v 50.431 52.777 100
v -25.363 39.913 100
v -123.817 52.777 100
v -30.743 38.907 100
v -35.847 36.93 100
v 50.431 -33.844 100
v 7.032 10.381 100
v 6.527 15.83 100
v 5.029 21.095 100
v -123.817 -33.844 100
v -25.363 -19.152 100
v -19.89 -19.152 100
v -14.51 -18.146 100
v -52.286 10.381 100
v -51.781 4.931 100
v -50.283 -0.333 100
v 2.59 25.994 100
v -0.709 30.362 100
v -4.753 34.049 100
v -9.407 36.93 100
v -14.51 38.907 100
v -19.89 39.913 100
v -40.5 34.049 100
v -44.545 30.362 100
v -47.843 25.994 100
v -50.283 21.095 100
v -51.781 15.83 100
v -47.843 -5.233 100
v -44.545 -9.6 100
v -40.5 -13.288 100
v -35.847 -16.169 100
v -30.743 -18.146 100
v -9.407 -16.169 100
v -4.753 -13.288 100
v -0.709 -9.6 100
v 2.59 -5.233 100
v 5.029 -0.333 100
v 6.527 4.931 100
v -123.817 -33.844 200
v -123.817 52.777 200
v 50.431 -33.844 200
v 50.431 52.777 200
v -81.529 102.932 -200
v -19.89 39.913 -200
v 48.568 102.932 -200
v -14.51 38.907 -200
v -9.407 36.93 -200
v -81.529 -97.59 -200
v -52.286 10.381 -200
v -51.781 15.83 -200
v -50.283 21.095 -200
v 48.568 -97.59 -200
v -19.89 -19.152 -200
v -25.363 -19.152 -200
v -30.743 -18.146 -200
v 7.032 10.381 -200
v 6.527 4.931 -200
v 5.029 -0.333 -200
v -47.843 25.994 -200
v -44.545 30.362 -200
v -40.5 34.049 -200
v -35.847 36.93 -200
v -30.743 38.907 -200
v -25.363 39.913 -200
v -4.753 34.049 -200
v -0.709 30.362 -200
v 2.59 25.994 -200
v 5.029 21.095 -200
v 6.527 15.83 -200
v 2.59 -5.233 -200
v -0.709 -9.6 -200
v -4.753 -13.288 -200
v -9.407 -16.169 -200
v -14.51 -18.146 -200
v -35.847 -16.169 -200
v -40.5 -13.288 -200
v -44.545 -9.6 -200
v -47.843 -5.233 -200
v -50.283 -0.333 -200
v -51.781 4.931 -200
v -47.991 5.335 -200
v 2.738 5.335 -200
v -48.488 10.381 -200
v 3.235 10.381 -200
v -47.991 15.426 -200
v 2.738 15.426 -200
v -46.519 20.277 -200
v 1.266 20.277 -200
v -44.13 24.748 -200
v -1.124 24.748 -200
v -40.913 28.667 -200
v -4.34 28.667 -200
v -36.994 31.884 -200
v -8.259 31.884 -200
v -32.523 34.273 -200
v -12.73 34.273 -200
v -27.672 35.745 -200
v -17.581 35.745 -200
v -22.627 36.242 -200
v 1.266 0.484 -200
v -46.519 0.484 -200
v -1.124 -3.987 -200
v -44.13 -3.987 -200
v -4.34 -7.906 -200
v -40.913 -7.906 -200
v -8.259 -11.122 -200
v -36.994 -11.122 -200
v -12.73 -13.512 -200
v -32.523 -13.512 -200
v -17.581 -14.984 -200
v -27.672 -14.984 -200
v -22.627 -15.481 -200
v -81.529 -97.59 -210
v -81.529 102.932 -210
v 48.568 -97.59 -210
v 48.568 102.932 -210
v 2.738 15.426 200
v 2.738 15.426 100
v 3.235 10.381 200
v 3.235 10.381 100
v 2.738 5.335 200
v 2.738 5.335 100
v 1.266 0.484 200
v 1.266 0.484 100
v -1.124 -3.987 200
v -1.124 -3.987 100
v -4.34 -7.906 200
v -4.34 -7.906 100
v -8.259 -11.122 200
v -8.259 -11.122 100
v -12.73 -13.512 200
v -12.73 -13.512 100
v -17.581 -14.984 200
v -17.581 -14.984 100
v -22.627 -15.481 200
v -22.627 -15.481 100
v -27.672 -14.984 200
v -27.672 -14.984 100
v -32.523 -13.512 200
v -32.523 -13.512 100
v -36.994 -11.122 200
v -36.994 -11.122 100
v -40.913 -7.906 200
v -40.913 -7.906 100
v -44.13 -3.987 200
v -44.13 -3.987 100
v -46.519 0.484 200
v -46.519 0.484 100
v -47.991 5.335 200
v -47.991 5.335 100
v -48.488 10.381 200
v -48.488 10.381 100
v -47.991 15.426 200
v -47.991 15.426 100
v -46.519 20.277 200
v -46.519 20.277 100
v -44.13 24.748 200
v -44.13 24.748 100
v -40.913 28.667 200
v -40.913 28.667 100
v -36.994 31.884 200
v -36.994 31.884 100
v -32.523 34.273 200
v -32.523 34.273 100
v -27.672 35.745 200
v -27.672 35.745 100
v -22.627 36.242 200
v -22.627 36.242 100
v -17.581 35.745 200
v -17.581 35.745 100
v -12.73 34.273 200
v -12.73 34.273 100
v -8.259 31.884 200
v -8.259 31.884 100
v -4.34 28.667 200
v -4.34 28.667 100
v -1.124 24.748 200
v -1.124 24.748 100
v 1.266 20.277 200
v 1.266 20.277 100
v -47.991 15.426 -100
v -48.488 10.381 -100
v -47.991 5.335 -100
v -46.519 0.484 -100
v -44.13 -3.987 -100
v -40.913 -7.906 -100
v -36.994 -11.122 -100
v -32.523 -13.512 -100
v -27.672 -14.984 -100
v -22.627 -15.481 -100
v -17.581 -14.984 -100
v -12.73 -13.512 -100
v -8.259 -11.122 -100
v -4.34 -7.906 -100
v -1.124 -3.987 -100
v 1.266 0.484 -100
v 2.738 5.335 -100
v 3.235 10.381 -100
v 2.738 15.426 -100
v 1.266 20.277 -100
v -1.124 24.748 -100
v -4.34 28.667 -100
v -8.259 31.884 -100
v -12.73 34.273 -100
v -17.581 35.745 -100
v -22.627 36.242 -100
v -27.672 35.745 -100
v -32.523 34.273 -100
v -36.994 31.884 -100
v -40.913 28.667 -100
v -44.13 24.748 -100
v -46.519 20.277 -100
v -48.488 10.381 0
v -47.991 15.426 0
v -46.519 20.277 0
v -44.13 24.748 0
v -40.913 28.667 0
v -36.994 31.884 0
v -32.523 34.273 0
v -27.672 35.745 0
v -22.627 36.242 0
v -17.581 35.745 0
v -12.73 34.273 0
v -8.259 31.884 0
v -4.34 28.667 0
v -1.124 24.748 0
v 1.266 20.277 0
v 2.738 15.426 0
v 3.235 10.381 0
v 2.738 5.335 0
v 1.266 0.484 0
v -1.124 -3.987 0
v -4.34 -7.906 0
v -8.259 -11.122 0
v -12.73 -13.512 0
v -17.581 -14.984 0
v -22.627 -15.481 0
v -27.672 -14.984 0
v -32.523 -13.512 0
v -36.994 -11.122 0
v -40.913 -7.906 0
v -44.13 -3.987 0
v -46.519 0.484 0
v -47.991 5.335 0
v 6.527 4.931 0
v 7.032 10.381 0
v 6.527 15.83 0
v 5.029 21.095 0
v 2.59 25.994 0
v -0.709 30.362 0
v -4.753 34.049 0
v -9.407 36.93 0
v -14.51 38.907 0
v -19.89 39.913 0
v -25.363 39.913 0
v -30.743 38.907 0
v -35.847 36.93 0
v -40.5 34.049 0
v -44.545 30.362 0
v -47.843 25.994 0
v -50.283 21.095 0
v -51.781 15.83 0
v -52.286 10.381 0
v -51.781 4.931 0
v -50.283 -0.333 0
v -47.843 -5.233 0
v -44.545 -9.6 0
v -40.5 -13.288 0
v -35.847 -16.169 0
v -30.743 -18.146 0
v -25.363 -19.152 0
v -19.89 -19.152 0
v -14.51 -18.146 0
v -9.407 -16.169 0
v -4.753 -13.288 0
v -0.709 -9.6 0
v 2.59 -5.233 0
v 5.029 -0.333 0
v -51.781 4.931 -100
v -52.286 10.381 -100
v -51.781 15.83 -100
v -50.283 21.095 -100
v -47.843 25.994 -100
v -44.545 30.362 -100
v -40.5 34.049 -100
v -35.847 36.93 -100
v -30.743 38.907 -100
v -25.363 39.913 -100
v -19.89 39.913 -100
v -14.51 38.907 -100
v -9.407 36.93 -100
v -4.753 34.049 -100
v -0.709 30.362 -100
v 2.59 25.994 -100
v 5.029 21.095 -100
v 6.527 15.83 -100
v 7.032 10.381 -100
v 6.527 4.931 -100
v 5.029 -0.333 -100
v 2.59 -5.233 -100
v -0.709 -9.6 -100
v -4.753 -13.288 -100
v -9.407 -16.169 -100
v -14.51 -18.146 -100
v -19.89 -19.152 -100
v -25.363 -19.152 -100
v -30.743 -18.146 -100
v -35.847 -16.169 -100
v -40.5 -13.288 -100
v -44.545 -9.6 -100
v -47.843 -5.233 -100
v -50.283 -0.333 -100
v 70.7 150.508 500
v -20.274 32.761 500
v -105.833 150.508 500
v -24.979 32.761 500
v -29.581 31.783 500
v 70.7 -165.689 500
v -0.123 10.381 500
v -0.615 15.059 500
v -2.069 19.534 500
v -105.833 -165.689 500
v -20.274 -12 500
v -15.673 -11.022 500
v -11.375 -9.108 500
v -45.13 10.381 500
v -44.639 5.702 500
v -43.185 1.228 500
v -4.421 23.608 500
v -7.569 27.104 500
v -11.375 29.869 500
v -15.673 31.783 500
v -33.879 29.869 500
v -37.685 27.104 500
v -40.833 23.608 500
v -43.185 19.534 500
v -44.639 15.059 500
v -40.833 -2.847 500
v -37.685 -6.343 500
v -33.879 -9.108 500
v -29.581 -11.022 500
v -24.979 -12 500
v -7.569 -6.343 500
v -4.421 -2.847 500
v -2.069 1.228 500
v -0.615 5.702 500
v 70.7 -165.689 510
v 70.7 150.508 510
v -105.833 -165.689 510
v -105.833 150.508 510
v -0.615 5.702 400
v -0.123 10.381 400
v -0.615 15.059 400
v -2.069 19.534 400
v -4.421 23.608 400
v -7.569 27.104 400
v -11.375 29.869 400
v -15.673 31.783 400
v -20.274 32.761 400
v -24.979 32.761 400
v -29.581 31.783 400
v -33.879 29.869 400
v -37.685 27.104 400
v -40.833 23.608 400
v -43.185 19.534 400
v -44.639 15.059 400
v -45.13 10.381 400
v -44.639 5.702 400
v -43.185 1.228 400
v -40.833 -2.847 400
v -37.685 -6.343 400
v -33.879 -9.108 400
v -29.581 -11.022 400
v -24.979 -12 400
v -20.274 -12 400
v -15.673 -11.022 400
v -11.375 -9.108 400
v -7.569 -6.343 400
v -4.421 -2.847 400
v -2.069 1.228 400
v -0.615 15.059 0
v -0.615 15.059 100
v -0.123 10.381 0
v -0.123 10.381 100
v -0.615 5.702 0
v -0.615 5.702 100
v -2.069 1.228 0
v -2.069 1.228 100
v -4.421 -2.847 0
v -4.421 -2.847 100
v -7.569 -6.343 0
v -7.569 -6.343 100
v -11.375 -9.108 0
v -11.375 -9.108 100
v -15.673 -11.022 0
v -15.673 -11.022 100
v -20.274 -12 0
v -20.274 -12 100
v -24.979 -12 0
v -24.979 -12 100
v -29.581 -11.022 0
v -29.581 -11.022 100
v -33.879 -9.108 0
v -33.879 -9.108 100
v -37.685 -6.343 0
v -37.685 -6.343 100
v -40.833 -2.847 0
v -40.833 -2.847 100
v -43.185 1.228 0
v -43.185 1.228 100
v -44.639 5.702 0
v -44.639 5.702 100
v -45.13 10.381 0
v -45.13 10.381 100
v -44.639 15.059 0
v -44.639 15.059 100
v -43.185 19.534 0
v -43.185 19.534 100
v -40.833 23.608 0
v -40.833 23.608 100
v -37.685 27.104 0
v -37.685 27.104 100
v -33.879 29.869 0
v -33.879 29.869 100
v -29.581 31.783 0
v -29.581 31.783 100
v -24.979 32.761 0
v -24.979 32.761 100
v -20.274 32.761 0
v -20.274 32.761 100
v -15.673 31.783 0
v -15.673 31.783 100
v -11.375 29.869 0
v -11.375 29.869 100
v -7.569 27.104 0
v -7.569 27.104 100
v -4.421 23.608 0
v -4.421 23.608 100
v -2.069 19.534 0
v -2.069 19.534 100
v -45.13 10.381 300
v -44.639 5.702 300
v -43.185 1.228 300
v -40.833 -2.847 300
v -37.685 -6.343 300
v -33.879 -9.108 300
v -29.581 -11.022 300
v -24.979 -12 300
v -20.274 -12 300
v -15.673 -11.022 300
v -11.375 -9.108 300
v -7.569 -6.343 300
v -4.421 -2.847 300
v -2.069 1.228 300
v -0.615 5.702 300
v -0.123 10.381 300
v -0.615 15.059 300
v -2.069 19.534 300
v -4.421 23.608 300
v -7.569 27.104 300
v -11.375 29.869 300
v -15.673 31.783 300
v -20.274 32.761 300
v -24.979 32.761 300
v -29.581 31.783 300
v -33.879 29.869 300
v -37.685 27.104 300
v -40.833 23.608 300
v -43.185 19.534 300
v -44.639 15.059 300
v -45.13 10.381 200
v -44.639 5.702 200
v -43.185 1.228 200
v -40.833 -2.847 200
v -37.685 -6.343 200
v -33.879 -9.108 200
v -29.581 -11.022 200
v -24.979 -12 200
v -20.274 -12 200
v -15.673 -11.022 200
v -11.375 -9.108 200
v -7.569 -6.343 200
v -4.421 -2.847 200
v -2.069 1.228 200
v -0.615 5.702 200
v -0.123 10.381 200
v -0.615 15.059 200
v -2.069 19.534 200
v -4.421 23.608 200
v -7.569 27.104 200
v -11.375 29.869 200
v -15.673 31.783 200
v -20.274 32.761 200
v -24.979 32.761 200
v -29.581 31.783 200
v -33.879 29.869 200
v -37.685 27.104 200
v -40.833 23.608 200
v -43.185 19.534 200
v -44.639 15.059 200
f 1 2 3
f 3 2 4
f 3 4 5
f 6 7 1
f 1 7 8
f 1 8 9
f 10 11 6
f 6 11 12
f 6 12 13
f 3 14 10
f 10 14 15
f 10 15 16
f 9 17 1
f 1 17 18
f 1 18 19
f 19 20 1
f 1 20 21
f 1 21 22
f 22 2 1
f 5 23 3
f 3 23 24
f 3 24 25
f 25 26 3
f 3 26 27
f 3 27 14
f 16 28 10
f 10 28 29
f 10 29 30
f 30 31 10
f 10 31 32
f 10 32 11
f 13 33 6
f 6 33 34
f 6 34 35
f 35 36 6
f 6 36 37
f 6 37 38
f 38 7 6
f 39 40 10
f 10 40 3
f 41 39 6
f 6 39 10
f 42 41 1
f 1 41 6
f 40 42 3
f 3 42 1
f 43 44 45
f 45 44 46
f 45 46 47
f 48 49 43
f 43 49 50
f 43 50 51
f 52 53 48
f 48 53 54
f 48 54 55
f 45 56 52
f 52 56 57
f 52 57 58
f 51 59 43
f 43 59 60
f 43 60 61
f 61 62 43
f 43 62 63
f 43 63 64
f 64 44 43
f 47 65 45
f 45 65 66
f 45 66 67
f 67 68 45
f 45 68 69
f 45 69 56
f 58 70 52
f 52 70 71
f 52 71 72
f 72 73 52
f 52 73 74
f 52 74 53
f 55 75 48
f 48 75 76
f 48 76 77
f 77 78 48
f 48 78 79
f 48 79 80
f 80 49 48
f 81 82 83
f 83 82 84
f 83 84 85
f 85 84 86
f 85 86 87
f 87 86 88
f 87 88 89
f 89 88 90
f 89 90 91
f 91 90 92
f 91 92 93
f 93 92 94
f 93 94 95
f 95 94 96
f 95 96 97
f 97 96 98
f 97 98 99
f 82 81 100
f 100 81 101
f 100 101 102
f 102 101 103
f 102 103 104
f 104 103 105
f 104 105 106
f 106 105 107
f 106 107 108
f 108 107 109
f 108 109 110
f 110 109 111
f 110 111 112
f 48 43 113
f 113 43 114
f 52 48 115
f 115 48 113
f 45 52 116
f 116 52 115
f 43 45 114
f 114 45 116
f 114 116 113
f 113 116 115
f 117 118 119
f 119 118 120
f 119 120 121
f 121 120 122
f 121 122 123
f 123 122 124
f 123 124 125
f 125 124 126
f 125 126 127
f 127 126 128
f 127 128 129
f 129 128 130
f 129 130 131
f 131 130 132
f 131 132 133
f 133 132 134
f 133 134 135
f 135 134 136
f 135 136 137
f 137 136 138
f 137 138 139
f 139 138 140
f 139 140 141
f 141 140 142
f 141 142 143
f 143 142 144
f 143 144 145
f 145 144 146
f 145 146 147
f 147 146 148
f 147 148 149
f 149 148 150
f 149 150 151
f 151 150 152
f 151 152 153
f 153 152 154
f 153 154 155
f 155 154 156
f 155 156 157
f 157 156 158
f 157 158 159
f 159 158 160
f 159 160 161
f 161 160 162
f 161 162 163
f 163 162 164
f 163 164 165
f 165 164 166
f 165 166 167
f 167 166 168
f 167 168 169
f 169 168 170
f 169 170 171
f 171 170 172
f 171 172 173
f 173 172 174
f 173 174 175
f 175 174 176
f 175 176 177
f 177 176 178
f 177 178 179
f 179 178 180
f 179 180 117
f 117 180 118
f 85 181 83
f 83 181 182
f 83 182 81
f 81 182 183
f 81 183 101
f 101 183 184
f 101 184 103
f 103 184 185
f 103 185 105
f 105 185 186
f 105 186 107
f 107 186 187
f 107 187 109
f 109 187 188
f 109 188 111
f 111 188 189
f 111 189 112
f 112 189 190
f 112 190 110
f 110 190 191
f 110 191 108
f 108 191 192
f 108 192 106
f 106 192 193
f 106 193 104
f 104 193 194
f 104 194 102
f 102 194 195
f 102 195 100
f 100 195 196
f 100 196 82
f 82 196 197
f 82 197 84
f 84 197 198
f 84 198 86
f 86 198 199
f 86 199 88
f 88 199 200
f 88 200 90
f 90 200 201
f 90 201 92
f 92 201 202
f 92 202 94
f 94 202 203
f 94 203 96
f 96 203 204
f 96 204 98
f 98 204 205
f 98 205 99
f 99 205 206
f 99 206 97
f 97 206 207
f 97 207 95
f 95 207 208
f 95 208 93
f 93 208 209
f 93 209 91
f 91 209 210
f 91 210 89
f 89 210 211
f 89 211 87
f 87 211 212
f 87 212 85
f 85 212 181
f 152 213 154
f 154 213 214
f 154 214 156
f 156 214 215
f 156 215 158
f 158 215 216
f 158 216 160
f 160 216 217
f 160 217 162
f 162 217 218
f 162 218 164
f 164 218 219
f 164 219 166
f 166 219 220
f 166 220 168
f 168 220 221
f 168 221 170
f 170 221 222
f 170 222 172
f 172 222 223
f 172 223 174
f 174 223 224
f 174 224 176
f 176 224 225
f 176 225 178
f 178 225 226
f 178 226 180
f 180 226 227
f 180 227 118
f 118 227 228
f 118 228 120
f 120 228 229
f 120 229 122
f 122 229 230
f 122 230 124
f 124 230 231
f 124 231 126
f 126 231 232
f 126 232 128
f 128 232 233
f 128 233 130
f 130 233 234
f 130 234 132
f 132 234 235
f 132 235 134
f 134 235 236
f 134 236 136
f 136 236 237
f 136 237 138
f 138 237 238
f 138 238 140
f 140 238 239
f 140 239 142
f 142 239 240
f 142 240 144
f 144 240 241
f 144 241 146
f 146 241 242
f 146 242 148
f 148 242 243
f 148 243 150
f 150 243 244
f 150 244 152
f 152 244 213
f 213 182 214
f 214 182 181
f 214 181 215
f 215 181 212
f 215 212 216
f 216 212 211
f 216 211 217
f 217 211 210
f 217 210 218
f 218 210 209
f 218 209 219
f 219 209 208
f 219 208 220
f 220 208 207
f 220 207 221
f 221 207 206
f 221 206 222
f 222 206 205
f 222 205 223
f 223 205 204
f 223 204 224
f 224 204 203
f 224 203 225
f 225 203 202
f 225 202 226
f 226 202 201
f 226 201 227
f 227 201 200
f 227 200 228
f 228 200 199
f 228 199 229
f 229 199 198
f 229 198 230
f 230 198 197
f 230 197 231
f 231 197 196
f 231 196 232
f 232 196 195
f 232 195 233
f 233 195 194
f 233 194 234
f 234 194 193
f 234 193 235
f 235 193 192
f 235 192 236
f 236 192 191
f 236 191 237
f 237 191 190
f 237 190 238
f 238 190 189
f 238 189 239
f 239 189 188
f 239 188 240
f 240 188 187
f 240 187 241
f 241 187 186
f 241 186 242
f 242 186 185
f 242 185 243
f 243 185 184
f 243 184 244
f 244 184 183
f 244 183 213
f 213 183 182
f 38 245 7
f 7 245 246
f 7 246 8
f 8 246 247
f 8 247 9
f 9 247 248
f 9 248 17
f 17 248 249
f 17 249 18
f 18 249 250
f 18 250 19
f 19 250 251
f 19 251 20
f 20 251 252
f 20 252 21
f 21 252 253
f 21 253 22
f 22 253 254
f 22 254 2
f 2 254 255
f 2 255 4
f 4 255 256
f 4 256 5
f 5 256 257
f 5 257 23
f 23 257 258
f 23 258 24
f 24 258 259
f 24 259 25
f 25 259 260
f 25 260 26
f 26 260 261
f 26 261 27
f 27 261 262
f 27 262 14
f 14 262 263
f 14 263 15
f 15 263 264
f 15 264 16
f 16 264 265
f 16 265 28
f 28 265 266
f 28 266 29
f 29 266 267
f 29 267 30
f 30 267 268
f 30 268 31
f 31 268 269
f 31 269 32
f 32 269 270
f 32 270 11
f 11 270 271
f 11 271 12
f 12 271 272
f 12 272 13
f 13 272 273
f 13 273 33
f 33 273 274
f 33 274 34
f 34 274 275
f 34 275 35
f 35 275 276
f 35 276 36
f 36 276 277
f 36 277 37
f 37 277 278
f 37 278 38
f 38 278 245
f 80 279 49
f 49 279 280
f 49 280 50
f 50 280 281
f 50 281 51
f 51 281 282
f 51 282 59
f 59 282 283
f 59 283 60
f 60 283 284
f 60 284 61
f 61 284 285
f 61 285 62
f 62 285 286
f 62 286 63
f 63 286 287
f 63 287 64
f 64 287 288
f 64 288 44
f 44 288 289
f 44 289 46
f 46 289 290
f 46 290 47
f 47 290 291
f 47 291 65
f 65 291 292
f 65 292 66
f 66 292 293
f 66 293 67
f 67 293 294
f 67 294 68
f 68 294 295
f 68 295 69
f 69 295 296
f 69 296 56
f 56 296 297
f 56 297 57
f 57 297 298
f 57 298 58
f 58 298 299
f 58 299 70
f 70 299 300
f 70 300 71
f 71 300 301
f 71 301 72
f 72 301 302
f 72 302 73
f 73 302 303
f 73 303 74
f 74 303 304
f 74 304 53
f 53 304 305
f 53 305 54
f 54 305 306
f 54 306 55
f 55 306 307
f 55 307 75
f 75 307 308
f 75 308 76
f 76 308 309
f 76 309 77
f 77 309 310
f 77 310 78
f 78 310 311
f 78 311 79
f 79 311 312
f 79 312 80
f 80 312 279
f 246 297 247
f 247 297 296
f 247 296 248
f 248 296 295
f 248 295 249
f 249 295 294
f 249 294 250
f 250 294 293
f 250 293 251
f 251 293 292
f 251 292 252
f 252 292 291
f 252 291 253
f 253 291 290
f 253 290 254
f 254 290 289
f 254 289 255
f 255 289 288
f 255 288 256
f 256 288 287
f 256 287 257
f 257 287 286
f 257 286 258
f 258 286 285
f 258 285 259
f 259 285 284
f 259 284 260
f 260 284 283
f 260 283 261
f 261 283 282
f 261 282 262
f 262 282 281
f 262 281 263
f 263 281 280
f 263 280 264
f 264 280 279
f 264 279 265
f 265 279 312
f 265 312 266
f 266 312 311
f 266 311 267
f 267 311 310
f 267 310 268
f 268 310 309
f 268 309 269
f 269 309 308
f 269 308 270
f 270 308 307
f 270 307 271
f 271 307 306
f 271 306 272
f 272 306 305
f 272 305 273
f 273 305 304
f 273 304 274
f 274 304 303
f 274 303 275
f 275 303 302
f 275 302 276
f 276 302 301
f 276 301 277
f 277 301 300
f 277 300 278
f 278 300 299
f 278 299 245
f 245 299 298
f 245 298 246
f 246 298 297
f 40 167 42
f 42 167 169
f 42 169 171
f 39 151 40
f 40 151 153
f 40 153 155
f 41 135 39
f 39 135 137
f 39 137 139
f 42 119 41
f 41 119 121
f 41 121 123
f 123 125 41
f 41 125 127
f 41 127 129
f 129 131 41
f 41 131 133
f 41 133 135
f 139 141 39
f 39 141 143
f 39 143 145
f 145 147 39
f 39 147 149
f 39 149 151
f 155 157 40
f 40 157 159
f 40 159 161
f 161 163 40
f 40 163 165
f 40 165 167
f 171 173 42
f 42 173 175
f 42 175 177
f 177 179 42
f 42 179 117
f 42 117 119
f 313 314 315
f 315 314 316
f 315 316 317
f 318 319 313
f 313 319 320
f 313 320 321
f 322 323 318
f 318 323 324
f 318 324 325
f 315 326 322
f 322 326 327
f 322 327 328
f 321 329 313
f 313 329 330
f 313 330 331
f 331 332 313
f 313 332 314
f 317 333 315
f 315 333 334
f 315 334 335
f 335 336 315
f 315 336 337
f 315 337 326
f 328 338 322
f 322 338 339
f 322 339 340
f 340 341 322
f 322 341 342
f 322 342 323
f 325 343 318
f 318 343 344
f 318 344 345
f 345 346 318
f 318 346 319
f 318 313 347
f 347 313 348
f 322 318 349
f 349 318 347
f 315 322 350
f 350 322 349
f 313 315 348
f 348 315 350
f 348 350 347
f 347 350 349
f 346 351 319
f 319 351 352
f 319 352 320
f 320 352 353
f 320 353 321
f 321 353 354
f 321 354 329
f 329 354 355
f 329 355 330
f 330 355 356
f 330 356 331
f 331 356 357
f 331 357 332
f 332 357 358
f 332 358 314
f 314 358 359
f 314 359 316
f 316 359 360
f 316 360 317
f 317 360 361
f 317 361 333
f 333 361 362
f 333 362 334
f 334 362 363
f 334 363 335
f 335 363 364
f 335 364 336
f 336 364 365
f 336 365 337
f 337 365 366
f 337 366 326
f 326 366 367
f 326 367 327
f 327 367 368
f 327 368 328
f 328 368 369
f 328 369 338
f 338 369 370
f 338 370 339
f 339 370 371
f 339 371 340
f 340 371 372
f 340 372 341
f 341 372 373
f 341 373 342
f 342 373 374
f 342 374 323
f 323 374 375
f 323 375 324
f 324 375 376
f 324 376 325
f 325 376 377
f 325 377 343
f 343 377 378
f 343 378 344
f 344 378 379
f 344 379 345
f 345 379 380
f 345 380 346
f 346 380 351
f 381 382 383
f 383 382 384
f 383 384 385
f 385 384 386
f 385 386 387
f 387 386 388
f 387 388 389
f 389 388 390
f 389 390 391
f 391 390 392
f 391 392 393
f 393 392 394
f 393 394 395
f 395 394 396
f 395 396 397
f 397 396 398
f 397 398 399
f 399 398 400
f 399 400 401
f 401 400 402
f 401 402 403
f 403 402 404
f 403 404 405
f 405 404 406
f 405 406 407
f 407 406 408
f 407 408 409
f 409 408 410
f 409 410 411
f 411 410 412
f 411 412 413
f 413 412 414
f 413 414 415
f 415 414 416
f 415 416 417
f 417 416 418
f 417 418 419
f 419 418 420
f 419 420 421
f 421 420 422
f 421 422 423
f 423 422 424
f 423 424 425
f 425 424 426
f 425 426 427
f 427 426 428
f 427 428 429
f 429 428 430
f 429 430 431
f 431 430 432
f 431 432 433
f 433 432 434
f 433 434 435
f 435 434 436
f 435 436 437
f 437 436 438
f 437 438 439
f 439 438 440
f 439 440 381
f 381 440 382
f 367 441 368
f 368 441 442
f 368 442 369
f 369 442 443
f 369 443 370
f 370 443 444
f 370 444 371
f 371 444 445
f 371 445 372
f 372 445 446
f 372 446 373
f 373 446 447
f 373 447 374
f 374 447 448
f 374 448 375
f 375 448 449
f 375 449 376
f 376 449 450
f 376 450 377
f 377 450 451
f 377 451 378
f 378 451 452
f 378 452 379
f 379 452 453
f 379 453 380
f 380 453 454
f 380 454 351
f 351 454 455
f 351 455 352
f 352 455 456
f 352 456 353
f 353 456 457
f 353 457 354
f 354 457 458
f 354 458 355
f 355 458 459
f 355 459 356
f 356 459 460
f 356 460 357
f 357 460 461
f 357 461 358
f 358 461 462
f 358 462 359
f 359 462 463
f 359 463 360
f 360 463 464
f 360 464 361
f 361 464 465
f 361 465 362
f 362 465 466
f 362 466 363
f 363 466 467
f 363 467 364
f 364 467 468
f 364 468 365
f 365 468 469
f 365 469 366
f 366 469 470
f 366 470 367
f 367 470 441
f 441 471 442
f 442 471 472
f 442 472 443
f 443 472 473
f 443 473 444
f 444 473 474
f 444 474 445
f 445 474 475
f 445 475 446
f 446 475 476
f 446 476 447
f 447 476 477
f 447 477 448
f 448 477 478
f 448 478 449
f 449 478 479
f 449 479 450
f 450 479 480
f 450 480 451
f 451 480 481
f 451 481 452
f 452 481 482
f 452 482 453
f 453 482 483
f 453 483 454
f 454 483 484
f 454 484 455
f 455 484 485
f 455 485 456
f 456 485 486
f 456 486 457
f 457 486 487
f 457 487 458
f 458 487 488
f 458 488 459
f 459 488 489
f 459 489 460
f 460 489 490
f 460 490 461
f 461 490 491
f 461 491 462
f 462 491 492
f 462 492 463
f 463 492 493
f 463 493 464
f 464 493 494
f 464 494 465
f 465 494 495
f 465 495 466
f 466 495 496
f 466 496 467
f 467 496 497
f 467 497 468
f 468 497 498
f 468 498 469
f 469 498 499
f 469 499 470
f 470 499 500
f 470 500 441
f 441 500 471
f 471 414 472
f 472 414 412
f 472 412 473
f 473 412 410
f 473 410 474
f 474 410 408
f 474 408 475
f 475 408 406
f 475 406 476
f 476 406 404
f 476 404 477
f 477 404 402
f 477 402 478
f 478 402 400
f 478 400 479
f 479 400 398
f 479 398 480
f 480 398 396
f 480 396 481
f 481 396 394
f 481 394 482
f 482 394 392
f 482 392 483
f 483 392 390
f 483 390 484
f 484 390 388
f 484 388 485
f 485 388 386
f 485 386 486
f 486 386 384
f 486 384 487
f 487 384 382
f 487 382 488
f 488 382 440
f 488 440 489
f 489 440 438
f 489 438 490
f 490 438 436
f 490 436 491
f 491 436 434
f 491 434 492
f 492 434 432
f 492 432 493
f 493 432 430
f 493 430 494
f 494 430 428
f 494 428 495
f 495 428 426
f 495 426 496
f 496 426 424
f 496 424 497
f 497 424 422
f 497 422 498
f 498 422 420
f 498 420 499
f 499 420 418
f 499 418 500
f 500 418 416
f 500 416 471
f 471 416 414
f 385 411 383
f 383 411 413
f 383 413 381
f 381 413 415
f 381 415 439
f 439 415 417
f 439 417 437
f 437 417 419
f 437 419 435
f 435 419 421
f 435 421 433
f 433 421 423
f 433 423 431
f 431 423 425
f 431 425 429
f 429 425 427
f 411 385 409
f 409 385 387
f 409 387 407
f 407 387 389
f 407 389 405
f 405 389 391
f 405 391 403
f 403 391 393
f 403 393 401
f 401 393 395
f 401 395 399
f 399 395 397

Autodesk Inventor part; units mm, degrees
ref_plane "YZ Plane" through (0, 0, 0) normal (1, 0, 0) x (0, 1, 0)
ref_plane "XZ Plane" through (0, 0, 0) normal (0, 1, 0) x (-1, 0, 0)
ref_plane "XY Plane" through (0, 0, 0) normal (0, 0, 1) x (1, 0, 0)
sketch "Эскиз1" plane through (0, 0, 0) normal (0, 0, 1) x (1, 0, 0)
  circle A0 centre (-22.6267, 10.3807) radius 22.5037
  point P0 (0, 0)
extrude "Выдавливание1" add sketch "Эскиз1" along normal blind 500
sketch "Эскиз2" plane through (-22.6267, 10.3807, 0) normal (0, 0, -1) x (-1, 0, 0)
  circle A0 centre (0, 0) radius 25.8613
  circle A1 centre (0, 0) radius 29.6588
  point P0 (-22.6267, -10.3807)
extrude "Выдавливание2" add sketch "Эскиз2" against normal mid plane 400
sketch "Эскиз3" plane through (-22.6267, 10.3807, -200) normal (0, 0, -1) x (-1, 0, 0)
  line L0 (58.9021, 92.5516) -> (-71.1943, 92.5516)
  line L1 (-71.1943, 92.5516) -> (-71.1943, -107.971)
  line L2 (-71.1943, -107.971) -> (58.9021, -107.971)
  line L3 (58.9021, -107.971) -> (58.9021, 92.5516)
  point P0 (-22.6267, -10.3807)
extrude "Выдавливание3" add sketch "Эскиз3" along normal blind 10
sketch "Эскиз4" plane through (-22.6267, 10.3807, 500) normal (0, 0, 1) x (1, 0, 0)
  line L0 (-83.2061, -176.0697) -> (93.3264, -176.0697)
  line L1 (93.3264, -176.0697) -> (93.3264, 140.1274)
  line L2 (93.3264, 140.1274) -> (-83.2061, 140.1274)
  line L3 (-83.2061, 140.1274) -> (-83.2061, -176.0697)
  point P0 (22.6267, -10.3807)
extrude "Выдавливание4" add sketch "Эскиз4" along normal blind 10
sketch "Эскиз5" plane through (-22.6267, 10.3807, 200) normal (0, 0, 1) x (1, 0, 0)
  line L0 (73.0581, -44.2251) -> (-101.1901, -44.2251)
  line L1 (-101.1901, -44.2251) -> (-101.1901, 42.3964)
  line L2 (-101.1901, 42.3964) -> (73.0581, 42.3964)
  line L3 (73.0581, 42.3964) -> (73.0581, -44.2251)
  circle A0 centre (0, 0) radius 25.8613 projected
  circle A1 centre (0, 0) radius 25.8613
  point P0 (22.6267, -10.3807)
extrude "Выдавливание5" add sketch "Эскиз5" against normal blind 100
properties part number "_3DПЕЧАТЬ"
